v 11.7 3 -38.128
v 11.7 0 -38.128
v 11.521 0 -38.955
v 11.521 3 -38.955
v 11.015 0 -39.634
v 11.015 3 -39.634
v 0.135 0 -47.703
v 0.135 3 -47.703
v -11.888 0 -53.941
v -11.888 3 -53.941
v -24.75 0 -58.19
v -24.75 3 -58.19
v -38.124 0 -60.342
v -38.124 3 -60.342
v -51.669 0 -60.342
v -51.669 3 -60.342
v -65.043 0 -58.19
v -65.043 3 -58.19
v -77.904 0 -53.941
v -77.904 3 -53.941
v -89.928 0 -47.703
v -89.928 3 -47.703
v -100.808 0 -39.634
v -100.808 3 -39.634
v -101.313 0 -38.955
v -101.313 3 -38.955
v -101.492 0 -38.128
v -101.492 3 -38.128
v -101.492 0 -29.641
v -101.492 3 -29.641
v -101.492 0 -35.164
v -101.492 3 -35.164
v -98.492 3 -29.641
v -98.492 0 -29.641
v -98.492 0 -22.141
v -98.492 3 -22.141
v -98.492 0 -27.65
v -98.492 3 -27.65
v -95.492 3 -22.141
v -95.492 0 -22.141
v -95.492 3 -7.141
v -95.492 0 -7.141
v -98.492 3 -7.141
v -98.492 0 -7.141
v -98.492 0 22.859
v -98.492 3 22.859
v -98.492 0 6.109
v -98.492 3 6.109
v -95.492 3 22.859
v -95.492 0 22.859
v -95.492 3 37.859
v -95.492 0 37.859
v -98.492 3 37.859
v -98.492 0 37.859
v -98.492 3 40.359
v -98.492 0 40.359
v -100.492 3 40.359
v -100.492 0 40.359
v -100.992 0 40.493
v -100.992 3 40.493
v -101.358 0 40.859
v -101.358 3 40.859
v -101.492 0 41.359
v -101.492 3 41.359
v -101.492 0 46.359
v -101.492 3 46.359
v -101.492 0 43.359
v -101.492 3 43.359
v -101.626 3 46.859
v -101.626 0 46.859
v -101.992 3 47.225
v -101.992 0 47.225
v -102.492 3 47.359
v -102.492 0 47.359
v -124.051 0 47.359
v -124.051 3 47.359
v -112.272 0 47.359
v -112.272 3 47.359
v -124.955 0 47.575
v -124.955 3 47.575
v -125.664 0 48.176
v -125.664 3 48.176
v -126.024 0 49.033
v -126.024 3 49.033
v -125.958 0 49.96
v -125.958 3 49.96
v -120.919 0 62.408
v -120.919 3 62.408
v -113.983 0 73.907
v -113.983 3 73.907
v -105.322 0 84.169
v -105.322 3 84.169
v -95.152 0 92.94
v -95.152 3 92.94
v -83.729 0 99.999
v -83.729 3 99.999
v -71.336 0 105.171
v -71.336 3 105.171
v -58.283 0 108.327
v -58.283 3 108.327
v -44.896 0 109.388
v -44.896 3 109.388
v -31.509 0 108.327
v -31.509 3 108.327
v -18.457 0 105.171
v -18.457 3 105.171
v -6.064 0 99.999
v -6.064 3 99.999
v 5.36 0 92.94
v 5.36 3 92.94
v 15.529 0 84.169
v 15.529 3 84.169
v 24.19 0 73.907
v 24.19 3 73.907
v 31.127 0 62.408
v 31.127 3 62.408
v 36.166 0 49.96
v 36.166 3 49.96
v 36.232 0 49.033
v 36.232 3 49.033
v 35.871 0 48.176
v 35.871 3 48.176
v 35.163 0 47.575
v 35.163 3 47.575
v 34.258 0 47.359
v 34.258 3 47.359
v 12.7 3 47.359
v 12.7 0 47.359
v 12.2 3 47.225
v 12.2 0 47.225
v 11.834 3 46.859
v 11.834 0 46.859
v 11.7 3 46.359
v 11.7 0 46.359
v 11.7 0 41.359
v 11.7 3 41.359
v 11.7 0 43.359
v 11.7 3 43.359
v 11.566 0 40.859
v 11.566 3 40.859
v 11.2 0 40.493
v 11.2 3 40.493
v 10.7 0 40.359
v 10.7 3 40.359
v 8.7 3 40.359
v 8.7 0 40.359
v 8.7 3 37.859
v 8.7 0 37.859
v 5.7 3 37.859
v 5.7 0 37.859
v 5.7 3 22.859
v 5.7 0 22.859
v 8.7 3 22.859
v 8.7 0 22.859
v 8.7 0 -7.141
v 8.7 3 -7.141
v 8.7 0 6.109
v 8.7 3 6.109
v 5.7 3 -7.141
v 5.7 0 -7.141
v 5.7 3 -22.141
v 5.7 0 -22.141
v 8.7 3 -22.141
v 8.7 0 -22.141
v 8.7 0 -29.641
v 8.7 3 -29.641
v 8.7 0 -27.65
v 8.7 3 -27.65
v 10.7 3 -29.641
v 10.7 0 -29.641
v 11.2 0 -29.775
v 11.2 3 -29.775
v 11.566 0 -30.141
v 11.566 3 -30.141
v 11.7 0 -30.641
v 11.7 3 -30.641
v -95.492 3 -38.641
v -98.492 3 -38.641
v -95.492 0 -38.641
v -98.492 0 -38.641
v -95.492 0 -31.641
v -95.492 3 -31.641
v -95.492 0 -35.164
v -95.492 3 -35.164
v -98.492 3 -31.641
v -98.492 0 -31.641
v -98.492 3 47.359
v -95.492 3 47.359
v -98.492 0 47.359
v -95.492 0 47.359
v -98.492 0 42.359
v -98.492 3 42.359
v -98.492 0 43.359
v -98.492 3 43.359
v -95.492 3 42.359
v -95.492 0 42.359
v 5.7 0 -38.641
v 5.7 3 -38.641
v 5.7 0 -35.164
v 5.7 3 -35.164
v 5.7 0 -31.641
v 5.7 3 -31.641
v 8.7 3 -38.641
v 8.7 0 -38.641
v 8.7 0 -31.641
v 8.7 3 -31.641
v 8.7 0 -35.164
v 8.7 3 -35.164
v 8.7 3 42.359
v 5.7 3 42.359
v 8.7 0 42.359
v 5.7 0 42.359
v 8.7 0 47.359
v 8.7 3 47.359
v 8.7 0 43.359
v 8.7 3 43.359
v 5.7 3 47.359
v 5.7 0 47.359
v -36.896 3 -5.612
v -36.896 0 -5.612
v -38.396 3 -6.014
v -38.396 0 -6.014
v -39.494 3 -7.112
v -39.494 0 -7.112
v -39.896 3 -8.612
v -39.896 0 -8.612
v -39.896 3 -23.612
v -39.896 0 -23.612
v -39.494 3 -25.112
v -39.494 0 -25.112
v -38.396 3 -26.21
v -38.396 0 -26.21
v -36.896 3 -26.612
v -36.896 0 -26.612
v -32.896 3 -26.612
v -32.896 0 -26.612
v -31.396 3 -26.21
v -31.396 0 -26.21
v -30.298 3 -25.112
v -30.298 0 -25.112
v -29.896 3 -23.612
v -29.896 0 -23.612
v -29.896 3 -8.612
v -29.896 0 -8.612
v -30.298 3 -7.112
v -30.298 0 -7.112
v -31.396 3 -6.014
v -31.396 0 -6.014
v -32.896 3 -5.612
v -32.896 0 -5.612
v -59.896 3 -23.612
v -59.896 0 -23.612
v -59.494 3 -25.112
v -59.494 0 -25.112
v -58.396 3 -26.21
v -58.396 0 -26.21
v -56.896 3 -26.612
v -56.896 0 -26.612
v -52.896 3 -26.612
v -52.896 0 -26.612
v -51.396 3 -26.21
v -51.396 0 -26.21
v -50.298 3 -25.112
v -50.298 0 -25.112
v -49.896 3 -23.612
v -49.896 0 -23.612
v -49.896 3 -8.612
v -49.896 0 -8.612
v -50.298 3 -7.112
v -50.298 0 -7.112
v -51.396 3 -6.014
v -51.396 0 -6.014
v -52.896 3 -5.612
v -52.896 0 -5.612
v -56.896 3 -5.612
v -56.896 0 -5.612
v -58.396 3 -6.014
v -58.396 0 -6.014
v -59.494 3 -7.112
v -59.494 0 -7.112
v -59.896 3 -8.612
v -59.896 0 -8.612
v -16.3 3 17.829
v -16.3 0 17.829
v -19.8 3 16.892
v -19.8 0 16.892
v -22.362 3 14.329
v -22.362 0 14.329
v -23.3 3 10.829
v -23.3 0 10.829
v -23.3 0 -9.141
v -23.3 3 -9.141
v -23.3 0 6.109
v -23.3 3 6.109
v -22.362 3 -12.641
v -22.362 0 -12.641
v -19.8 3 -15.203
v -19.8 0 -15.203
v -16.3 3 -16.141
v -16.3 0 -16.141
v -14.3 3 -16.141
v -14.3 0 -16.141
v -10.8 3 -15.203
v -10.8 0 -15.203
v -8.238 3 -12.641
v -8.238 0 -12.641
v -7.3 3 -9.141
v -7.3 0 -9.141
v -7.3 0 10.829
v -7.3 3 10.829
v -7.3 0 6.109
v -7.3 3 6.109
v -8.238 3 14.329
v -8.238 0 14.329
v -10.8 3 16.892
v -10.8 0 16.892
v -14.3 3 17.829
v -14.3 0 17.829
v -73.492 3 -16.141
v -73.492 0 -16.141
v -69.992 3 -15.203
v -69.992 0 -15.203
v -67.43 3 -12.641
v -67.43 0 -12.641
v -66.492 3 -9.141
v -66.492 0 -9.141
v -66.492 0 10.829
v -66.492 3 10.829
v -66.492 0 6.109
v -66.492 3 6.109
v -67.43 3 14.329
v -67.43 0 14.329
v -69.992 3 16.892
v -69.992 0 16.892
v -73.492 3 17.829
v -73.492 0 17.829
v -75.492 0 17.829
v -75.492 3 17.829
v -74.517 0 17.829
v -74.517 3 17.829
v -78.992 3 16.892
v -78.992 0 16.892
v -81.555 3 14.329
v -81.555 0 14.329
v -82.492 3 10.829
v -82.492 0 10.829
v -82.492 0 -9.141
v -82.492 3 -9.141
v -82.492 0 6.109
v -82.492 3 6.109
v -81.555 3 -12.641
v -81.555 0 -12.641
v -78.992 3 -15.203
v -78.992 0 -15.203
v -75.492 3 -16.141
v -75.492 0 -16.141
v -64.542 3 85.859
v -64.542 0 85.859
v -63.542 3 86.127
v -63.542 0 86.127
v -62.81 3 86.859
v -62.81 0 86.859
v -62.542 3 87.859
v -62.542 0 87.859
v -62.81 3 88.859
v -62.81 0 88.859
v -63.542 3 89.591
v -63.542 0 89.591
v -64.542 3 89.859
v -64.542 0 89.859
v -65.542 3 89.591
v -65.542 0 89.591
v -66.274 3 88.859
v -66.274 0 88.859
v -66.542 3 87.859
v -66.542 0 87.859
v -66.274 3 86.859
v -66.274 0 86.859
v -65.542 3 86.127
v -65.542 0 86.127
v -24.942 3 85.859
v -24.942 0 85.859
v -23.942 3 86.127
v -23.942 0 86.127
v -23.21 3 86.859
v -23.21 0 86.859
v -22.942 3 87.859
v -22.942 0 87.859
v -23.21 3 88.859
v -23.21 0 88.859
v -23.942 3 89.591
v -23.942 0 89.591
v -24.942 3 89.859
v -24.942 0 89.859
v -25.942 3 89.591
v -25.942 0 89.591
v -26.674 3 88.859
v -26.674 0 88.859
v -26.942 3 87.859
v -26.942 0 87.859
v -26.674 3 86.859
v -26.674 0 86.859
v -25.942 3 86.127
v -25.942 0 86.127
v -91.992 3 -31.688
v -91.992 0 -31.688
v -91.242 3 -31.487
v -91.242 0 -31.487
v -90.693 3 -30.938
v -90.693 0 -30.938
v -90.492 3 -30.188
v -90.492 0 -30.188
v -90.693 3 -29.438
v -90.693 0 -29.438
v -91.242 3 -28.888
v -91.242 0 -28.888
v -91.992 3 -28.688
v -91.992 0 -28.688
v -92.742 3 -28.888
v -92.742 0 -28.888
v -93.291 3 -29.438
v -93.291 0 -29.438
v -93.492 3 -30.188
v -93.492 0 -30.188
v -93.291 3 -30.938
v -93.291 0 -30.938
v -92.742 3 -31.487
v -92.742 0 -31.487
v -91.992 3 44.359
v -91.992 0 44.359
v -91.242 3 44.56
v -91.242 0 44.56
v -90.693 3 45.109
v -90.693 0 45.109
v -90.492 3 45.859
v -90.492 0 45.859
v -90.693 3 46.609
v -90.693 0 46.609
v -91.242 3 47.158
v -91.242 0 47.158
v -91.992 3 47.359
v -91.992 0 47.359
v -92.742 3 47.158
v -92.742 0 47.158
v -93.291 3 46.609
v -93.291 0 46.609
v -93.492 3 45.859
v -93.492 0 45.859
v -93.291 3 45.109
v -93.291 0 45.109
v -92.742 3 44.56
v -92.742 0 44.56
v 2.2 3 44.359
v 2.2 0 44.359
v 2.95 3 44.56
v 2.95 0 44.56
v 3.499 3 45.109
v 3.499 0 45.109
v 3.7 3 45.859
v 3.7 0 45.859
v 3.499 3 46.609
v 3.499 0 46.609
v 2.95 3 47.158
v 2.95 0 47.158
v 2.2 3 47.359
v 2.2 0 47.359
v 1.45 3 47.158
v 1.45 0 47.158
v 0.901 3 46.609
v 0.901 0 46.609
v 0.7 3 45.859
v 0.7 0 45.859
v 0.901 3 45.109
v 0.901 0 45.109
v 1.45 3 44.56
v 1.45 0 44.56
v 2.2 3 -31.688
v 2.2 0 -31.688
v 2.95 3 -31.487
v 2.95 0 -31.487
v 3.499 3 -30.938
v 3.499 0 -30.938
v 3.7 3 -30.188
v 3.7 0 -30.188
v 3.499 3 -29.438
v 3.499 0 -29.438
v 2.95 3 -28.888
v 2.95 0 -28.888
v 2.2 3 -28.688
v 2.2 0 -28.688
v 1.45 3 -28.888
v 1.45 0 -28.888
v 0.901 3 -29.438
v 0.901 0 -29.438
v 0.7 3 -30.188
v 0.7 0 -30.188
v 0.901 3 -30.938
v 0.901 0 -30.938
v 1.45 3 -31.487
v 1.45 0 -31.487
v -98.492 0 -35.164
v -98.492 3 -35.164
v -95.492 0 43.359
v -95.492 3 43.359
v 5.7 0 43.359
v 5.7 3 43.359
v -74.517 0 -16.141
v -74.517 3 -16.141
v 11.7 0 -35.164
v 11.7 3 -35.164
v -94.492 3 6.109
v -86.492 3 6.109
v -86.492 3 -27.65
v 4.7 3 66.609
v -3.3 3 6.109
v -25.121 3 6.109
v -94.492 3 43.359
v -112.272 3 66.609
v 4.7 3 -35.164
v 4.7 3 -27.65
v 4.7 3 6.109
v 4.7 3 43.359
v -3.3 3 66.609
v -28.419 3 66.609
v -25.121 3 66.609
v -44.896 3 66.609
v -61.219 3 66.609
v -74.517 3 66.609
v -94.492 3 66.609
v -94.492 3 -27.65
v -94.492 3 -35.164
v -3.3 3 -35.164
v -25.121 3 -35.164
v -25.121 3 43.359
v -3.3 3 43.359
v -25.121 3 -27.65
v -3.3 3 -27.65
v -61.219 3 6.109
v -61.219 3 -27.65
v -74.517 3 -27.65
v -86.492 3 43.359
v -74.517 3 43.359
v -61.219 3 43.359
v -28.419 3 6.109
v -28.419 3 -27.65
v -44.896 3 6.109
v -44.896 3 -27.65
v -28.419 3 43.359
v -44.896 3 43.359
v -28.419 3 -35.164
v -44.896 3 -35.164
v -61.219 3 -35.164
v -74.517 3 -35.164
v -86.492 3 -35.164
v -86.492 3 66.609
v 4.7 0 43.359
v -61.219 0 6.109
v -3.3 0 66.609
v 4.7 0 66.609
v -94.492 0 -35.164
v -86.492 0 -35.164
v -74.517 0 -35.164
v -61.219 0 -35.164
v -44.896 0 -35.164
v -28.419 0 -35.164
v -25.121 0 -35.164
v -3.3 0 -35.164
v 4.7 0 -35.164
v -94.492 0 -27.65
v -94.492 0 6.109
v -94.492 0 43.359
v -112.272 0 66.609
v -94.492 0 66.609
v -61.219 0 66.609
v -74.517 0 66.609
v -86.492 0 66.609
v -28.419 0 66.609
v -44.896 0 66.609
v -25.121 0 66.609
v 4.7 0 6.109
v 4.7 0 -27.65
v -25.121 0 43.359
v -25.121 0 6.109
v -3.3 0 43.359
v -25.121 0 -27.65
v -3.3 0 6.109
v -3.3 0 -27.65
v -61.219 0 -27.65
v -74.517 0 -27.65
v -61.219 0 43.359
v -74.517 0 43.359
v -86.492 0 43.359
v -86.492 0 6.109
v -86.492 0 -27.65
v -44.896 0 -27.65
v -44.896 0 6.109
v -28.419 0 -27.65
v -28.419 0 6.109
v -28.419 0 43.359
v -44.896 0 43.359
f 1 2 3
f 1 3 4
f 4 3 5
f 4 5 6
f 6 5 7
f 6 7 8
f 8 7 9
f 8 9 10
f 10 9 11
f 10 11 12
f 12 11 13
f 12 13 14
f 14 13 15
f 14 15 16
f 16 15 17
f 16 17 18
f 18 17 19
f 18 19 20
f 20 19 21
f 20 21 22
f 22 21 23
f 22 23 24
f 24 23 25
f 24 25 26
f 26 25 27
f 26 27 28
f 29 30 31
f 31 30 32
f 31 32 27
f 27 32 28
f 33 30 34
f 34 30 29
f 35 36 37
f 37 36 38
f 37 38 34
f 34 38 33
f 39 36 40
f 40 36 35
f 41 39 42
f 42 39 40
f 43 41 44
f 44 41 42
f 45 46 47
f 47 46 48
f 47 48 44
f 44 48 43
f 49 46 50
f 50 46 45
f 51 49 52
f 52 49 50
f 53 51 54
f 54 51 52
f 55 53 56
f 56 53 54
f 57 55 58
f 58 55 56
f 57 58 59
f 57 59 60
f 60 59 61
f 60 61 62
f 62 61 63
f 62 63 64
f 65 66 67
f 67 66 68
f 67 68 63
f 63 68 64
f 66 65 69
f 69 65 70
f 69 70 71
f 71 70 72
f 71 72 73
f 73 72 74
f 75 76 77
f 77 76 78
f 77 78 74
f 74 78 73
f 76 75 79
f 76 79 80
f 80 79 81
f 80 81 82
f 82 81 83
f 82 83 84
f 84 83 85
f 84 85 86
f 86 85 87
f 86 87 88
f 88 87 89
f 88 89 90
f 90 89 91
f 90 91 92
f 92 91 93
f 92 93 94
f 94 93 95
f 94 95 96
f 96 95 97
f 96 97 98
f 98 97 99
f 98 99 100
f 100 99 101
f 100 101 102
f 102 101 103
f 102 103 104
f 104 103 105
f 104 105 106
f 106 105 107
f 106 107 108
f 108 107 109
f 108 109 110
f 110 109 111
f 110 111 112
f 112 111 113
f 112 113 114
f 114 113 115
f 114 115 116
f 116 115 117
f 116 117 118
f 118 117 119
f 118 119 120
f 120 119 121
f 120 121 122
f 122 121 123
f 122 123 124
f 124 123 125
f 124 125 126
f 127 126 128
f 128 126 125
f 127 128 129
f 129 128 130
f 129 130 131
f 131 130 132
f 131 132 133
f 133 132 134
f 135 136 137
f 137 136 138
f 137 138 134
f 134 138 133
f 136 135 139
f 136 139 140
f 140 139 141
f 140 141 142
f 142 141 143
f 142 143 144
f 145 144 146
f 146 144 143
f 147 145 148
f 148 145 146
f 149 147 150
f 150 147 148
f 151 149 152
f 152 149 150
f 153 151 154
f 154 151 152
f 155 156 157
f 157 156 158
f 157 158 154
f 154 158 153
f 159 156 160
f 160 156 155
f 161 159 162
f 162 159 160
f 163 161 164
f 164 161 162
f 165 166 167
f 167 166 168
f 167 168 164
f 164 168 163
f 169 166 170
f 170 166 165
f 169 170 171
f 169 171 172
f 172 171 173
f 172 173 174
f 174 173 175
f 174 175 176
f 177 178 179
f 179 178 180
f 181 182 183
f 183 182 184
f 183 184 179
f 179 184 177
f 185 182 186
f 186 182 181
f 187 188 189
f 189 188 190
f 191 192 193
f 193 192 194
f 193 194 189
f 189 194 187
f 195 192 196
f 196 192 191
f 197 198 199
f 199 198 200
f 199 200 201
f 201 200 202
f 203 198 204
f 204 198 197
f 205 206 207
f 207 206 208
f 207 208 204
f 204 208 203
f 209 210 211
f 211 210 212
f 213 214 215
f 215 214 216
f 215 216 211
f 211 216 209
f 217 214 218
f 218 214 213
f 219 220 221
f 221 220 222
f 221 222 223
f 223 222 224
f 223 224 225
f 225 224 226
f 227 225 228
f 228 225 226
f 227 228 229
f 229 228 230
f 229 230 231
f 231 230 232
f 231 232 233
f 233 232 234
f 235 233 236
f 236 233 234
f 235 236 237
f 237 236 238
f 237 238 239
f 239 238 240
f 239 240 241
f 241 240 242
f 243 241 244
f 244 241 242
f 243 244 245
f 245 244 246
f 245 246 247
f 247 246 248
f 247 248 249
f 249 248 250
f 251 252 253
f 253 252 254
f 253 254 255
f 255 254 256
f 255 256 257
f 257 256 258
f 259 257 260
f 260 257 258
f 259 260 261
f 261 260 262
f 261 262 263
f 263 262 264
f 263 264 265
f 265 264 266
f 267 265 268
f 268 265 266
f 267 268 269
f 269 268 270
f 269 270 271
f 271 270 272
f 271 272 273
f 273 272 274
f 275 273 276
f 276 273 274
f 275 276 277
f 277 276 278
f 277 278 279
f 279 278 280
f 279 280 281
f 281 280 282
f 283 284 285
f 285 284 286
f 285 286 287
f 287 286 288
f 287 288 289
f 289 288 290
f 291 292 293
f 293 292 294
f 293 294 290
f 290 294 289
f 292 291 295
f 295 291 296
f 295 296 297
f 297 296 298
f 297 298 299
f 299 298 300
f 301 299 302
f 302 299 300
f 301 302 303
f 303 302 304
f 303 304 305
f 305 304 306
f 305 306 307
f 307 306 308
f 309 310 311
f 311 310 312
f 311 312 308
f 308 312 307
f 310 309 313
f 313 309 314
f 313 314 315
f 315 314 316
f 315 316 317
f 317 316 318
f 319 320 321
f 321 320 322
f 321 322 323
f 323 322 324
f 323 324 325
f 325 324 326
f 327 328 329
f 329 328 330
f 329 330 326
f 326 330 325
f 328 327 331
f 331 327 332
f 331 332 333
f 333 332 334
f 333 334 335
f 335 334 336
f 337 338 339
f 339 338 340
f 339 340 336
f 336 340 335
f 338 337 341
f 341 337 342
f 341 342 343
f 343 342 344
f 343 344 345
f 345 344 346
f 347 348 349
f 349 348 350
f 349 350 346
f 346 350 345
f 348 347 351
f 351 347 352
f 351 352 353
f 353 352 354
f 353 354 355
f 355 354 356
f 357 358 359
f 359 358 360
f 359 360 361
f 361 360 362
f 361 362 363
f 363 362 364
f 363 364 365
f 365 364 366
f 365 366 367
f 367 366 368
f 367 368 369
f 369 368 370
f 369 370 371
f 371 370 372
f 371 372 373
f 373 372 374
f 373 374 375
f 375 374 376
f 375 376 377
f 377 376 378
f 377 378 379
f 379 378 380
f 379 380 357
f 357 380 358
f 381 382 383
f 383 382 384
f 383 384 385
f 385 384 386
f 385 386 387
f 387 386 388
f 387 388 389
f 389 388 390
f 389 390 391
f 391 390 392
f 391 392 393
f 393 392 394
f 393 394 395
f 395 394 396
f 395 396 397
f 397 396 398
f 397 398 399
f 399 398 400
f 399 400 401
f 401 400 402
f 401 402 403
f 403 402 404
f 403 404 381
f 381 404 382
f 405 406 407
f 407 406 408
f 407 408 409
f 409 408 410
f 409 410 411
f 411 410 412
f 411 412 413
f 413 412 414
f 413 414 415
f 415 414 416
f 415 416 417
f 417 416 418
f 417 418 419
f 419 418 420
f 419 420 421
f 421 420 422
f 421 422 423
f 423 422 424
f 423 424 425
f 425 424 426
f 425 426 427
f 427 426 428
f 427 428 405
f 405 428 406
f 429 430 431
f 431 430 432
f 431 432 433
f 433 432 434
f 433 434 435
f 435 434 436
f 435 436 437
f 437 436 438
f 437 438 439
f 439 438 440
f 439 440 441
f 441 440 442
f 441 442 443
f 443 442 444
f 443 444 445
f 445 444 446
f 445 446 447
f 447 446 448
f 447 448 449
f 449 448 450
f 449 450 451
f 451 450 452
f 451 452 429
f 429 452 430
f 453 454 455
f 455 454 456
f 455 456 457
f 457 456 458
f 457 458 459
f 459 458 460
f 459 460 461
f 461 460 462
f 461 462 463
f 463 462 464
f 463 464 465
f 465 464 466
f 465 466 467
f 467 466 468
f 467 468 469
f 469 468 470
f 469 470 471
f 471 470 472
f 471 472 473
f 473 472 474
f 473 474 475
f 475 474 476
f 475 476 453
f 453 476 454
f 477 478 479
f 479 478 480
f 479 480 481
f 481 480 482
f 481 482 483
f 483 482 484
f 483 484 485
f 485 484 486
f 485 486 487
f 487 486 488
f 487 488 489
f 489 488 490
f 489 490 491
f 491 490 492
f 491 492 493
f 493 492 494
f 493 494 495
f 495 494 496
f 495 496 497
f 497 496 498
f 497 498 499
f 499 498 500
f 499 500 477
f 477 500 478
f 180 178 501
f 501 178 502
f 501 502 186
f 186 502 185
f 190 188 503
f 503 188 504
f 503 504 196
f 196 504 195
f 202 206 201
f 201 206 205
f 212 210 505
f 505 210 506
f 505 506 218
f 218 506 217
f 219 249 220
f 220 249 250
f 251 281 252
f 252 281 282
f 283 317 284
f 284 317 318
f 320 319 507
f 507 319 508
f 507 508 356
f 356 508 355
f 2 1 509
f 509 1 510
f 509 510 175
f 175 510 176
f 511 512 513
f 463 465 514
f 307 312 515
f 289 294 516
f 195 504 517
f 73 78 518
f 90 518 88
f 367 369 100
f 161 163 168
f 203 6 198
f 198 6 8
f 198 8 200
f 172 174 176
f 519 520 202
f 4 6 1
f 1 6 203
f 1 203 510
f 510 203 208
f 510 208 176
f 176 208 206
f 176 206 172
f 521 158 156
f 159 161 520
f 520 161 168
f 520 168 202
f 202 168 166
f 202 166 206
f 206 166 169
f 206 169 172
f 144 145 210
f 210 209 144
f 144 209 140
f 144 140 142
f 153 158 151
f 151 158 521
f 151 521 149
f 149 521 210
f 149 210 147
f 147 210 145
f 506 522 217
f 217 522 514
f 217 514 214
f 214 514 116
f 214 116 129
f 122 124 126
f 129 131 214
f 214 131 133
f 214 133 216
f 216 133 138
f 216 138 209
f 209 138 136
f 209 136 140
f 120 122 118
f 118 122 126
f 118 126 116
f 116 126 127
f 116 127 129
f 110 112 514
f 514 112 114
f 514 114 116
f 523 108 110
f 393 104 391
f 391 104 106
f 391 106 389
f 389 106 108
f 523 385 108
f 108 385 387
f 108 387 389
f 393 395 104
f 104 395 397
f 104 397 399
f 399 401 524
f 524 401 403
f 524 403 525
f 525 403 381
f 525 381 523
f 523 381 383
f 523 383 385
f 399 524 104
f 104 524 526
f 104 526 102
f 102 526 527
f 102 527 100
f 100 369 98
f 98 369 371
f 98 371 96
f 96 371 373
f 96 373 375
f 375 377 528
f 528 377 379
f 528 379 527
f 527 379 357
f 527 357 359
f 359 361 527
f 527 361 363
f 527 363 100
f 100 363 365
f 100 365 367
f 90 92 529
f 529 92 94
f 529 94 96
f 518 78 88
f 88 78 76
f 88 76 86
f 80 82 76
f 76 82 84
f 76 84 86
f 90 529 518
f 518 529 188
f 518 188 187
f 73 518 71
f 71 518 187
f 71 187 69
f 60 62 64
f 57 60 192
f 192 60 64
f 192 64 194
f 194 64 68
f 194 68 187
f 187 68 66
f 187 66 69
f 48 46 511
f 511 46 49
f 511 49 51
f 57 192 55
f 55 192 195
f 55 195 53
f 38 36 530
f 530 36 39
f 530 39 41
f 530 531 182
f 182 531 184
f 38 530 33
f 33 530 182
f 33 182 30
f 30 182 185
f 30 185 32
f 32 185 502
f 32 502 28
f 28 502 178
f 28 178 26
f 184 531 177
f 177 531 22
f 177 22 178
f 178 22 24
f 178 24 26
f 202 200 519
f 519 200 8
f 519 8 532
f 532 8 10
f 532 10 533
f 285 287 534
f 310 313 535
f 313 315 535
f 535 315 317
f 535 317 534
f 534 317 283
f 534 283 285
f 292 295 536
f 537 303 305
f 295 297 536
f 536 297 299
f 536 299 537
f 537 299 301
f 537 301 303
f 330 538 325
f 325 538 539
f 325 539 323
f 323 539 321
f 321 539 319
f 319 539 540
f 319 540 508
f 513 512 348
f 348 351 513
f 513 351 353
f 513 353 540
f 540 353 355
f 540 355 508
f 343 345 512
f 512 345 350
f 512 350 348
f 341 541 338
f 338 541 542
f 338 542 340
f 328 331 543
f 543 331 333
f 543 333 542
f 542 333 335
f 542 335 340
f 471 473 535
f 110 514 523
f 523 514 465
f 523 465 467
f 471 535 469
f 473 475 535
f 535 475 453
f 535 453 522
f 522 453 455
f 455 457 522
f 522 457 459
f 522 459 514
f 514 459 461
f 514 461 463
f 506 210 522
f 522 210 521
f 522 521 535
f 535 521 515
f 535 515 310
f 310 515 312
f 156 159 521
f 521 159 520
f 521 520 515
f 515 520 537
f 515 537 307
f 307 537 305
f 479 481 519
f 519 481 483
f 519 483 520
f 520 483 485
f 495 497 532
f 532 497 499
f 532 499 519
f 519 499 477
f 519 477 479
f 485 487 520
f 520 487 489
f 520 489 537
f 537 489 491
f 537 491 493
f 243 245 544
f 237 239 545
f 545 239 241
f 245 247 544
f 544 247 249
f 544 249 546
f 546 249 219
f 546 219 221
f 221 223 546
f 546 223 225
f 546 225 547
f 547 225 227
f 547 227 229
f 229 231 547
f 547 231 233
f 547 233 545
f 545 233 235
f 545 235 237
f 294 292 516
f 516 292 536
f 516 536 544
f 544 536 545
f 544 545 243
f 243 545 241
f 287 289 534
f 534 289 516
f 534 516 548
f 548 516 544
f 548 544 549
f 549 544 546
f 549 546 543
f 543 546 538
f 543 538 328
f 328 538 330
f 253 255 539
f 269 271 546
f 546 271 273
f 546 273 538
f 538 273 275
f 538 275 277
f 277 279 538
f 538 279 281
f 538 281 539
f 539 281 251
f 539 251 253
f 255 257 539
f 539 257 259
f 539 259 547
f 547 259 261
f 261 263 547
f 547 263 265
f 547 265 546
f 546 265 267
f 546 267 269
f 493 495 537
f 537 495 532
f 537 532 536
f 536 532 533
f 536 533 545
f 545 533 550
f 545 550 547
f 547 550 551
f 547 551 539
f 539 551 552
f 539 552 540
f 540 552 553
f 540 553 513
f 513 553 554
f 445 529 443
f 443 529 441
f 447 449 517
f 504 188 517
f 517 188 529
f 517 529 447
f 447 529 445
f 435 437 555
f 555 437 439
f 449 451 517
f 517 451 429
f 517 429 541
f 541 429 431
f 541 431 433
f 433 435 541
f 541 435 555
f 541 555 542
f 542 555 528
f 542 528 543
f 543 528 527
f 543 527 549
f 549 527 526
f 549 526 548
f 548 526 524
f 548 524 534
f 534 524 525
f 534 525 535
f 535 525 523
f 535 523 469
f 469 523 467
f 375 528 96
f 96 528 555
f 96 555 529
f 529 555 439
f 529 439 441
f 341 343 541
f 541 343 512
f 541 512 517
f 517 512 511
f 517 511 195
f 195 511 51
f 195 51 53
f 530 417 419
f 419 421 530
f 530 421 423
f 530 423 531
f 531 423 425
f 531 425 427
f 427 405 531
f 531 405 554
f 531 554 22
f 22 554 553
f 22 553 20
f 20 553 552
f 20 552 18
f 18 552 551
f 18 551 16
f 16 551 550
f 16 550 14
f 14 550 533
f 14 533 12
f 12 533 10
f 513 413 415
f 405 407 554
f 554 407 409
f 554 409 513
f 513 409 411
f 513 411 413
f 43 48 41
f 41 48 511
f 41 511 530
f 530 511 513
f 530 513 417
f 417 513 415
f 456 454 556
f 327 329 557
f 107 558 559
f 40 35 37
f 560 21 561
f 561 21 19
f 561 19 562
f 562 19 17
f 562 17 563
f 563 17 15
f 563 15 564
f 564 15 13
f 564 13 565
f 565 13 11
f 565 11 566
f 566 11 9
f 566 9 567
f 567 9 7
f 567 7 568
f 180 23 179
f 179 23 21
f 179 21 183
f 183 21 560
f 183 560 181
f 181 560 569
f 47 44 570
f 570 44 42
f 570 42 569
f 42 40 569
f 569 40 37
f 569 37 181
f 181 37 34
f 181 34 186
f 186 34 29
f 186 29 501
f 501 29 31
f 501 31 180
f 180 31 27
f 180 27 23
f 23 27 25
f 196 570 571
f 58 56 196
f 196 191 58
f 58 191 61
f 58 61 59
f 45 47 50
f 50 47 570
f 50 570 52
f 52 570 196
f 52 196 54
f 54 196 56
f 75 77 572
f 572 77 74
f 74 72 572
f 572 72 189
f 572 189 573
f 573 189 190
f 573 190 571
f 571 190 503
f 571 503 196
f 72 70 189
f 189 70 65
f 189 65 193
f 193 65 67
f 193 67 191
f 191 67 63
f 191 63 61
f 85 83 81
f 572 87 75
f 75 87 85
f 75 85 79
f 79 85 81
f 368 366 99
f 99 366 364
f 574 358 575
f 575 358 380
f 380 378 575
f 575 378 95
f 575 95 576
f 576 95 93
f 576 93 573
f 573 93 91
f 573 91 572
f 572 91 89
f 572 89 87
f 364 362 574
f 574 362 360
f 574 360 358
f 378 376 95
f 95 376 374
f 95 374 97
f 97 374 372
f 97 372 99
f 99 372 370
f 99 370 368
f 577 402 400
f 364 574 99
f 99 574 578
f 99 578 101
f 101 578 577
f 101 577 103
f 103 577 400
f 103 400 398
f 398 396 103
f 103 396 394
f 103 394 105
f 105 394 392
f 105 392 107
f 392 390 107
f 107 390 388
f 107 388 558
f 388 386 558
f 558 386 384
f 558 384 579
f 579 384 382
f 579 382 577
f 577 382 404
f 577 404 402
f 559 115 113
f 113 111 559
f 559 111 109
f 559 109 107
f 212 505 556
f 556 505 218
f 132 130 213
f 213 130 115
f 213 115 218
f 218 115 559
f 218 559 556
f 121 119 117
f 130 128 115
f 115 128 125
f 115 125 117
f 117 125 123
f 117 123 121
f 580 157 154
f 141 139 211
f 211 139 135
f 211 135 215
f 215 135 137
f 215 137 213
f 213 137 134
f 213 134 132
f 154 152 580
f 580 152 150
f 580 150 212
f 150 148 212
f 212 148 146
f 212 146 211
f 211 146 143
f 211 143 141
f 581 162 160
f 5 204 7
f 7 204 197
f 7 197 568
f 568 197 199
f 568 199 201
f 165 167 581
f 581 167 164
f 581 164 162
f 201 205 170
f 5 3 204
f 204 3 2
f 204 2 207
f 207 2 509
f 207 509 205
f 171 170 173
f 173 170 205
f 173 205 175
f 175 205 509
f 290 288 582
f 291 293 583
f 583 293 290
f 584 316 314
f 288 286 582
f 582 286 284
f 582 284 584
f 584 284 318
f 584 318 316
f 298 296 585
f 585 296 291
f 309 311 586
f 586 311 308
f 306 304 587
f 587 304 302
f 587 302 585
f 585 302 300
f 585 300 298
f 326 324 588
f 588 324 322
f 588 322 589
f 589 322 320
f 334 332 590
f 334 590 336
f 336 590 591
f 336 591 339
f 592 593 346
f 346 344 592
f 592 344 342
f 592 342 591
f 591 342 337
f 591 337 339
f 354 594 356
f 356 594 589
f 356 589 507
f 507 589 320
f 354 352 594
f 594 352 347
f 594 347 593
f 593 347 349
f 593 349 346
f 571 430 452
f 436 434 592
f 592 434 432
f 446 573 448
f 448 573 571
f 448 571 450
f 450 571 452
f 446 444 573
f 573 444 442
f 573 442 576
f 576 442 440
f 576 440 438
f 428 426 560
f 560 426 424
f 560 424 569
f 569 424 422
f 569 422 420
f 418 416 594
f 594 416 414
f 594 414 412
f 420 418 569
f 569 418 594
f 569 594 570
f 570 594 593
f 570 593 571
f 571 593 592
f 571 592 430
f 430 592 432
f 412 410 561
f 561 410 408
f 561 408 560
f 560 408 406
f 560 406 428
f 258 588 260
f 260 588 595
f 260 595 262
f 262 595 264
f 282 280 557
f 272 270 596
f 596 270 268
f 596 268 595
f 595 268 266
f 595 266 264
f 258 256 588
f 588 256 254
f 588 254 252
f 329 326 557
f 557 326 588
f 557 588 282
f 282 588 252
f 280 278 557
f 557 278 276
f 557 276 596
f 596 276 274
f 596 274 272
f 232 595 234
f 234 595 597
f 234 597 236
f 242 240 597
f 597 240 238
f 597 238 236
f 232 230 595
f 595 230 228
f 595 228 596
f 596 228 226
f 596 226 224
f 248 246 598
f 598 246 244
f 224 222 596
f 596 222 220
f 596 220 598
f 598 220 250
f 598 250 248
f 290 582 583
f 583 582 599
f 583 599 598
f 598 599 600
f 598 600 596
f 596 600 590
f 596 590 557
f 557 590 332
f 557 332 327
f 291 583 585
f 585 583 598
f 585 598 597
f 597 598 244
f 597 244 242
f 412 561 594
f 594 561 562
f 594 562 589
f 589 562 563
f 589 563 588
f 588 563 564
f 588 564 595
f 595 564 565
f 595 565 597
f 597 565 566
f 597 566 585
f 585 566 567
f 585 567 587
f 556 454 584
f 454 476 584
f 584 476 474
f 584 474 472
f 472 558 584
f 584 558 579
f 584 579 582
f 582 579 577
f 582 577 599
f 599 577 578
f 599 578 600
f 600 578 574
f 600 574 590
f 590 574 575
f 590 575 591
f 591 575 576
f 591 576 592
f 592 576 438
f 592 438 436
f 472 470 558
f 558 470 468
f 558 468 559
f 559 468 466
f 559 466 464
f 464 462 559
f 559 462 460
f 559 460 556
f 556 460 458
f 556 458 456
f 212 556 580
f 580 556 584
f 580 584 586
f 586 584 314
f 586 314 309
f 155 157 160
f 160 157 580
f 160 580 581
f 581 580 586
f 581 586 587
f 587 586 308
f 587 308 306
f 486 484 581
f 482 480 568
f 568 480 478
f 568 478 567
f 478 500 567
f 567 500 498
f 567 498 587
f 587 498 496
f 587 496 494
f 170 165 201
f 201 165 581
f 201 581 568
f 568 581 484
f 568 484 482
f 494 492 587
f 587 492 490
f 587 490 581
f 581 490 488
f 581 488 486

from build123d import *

# Parameters (mm, degrees)
SKETCH1_R           = 1.5
SKETCH1_R_2         = 2
SKETCH1_W           = 3
SKETCH1_H           = 5
SKETCH1_H_2         = 7
BOSS_EXTRUDE1_DEPTH = 3


with BuildPart() as part:
    # Sketch1 → Boss-Extrude1 (new body)
    with BuildSketch(Plane(origin=(0, 0, 0), x_dir=(1, 0, 0), z_dir=(0, 1, 0))):
        with BuildLine():
            Line((11.699698215, 30.641238244), (11.699698215, 38.128019164))
            ThreePointArc((11.699698215, 38.128019164), (11.520568227, 38.955323461), (11.015265815, 39.634432749))
            ThreePointArc((11.015265815, 39.634432749), (-44.896357171, 60.611855364), (-100.807980157, 39.634432749))
            ThreePointArc((-100.807980157, 39.634432749), (-101.313282569, 38.955323461), (-101.492412558, 38.128019164))
            Line((-101.492412558, 38.128019164), (-101.492412558, 29.641238244))
            Line((-101.492412558, 29.641238244), (-98.492412558, 29.641238244))
            Line((-98.492412558, 29.641238244), (-98.492412558, 22.141238244))
            Line((-98.492412558, 22.141238244), (-95.492412558, 22.141238244))
            Line((-95.492412558, 22.141238244), (-95.492412558, 7.141238244))
            Line((-95.492412558, 7.141238244), (-98.492412558, 7.141238244))
            Line((-98.492412558, 7.141238244), (-98.492412558, -22.858761756))
            Line((-98.492412558, -22.858761756), (-95.492412558, -22.858761756))
            Line((-95.492412558, -22.858761756), (-95.492412558, -37.858761756))
            Line((-95.492412558, -37.858761756), (-98.492412558, -37.858761756))
            Line((-98.492412558, -37.858761756), (-98.492412558, -40.358761756))
            Line((-98.492412558, -40.358761756), (-100.492412558, -40.358761756))
            ThreePointArc((-100.492412558, -40.358761756), (-101.199519339, -40.651654975), (-101.492412558, -41.358761756))
            Line((-101.492412558, -41.358761756), (-101.492412558, -46.358761756))
            ThreePointArc((-101.492412558, -46.358761756), (-101.785305776, -47.065868537), (-102.492412558, -47.358761756))
            Line((-102.492412558, -47.358761756), (-124.051068216, -47.358761756))
            ThreePointArc((-124.051068216, -47.358761756), (-125.664047329, -48.176265083), (-125.958410651, -49.960463374))
            ThreePointArc((-125.958410651, -49.960463374), (-44.896357171, -109.388144636), (36.165696309, -49.960463373))
            ThreePointArc((36.165696309, -49.960463373), (35.871332987, -48.176265083), (34.258353874, -47.358761756))
            Line((34.258353874, -47.358761756), (12.699698215, -47.358761756))
            ThreePointArc((12.699698215, -47.358761756), (11.992591434, -47.065868537), (11.699698215, -46.358761756))
            Line((11.699698215, -46.358761756), (11.699698215, -41.358761756))
            ThreePointArc((11.699698215, -41.358761756), (11.406804997, -40.651654975), (10.699698215, -40.358761756))
            Line((10.699698215, -40.358761756), (8.699698215, -40.358761756))
            Line((8.699698215, -40.358761756), (8.699698215, -37.858761756))
            Line((8.699698215, -37.858761756), (5.699698215, -37.858761756))
            Line((5.699698215, -37.858761756), (5.699698215, -22.858761756))
            Line((5.699698215, -22.858761756), (8.699698215, -22.858761756))
            Line((8.699698215, -22.858761756), (8.699698215, 7.141238244))
            Line((8.699698215, 7.141238244), (5.699698215, 7.141238244))
            Line((5.699698215, 7.141238244), (5.699698215, 22.141238244))
            Line((5.699698215, 22.141238244), (8.699698215, 22.141238244))
            Line((8.699698215, 22.141238244), (8.699698215, 29.641238244))
            Line((8.699698215, 29.641238244), (10.699698215, 29.641238244))
            ThreePointArc((10.699698215, 29.641238244), (11.406804996, 29.934131463), (11.699698215, 30.641238244))
        make_face()
        with Locations(Location((2.199698215, 30.187503495, 0), (0, 0, 270))):
            Circle(SKETCH1_R, mode=Mode.SUBTRACT)
        with Locations(Location((2.199698215, -45.858761756, 0), (0, 0, 270))):
            Circle(SKETCH1_R, mode=Mode.SUBTRACT)
        with Locations(Location((-91.992412558, -45.858761756, 0), (0, 0, 270))):
            Circle(SKETCH1_R, mode=Mode.SUBTRACT)
        with Locations(Location((-91.992412558, 30.187503495, 0), (0, 0, 270))):
            Circle(SKETCH1_R, mode=Mode.SUBTRACT)
        with Locations(Location((-24.942412558, -87.858761756, 0), (0, 0, 270))):
            Circle(SKETCH1_R_2, mode=Mode.SUBTRACT)
        with Locations(Location((-64.542412558, -87.858761756, 0), (0, 0, 270))):
            Circle(SKETCH1_R_2, mode=Mode.SUBTRACT)
        with Locations((-96.992412558, -44.858761756)):
            Rectangle(SKETCH1_W, SKETCH1_H, mode=Mode.SUBTRACT)
        with Locations((7.199698215, 35.141238244)):
            Rectangle(SKETCH1_W, SKETCH1_H_2, mode=Mode.SUBTRACT)
        with Locations((7.199698215, -44.858761756)):
            Rectangle(SKETCH1_W, SKETCH1_H, mode=Mode.SUBTRACT)
        with BuildLine():
            Line((-75.492412558, 16.141238244), (-73.492412558, 16.141238244))
            ThreePointArc((-73.492412558, 16.141238244), (-68.542665089, 14.090985712), (-66.492412558, 9.141238244))
            Line((-66.492412558, 9.141238244), (-66.492412558, -10.829459129))
            ThreePointArc((-66.492412558, -10.829459129), (-68.542665089, -15.779206597), (-73.492412558, -17.829459129))
            Line((-73.492412558, -17.829459129), (-75.492412558, -17.829459129))
            ThreePointArc((-75.492412558, -17.829459129), (-80.442160026, -15.779206597), (-82.492412558, -10.829459129))
            Line((-82.492412558, -10.829459129), (-82.492412558, 9.141238244))
            ThreePointArc((-82.492412558, 9.141238244), (-80.442160026, 14.090985712), (-75.492412558, 16.141238244))
        make_face(mode=Mode.SUBTRACT)
        with Locations((-96.992412558, 35.141238244)):
            Rectangle(SKETCH1_W, SKETCH1_H_2, mode=Mode.SUBTRACT)
        with BuildLine():
            Line((-29.896357171, 23.611855364), (-29.896357171, 8.611855364))
            ThreePointArc((-29.896357171, 8.611855364), (-30.775036828, 6.49053502), (-32.896357171, 5.611855364))
            Line((-32.896357171, 5.611855364), (-36.896357171, 5.611855364))
            ThreePointArc((-36.896357171, 5.611855364), (-39.017677515, 6.49053502), (-39.896357171, 8.611855364))
            Line((-39.896357171, 8.611855364), (-39.896357171, 23.611855364))
            ThreePointArc((-39.896357171, 23.611855364), (-39.017677515, 25.733175707), (-36.896357171, 26.611855364))
            Line((-36.896357171, 26.611855364), (-32.896357171, 26.611855364))
            ThreePointArc((-32.896357171, 26.611855364), (-30.775036828, 25.733175707), (-29.896357171, 23.611855364))
        make_face(mode=Mode.SUBTRACT)
        with BuildLine():
            Line((-56.896357171, 5.611855364), (-52.896357171, 5.611855364))
            ThreePointArc((-52.896357171, 5.611855364), (-50.775036828, 6.49053502), (-49.896357171, 8.611855364))
            Line((-49.896357171, 8.611855364), (-49.896357171, 23.611855364))
            ThreePointArc((-49.896357171, 23.611855364), (-50.775036828, 25.733175707), (-52.896357171, 26.611855364))
            Line((-52.896357171, 26.611855364), (-56.896357171, 26.611855364))
            ThreePointArc((-56.896357171, 26.611855364), (-59.017677515, 25.733175707), (-59.896357171, 23.611855364))
            Line((-59.896357171, 23.611855364), (-59.896357171, 8.611855364))
            ThreePointArc((-59.896357171, 8.611855364), (-59.017677515, 6.49053502), (-56.896357171, 5.611855364))
        make_face(mode=Mode.SUBTRACT)
        with BuildLine():
            Line((-7.300301785, 9.141238244), (-7.300301785, -10.829459129))
            ThreePointArc((-7.300301785, -10.829459129), (-9.350554316, -15.779206597), (-14.300301785, -17.829459129))
            Line((-14.300301785, -17.829459129), (-16.300301785, -17.829459129))
            ThreePointArc((-16.300301785, -17.829459129), (-21.250049253, -15.779206597), (-23.300301785, -10.829459129))
            Line((-23.300301785, -10.829459129), (-23.300301785, 9.141238244))
            ThreePointArc((-23.300301785, 9.141238244), (-21.250049253, 14.090985712), (-16.300301785, 16.141238244))
            Line((-16.300301785, 16.141238244), (-14.300301785, 16.141238244))
            ThreePointArc((-14.300301785, 16.141238244), (-9.350554316, 14.090985712), (-7.300301785, 9.141238244))
        make_face(mode=Mode.SUBTRACT)
    extrude(amount=BOSS_EXTRUDE1_DEPTH)


solid = part.part
